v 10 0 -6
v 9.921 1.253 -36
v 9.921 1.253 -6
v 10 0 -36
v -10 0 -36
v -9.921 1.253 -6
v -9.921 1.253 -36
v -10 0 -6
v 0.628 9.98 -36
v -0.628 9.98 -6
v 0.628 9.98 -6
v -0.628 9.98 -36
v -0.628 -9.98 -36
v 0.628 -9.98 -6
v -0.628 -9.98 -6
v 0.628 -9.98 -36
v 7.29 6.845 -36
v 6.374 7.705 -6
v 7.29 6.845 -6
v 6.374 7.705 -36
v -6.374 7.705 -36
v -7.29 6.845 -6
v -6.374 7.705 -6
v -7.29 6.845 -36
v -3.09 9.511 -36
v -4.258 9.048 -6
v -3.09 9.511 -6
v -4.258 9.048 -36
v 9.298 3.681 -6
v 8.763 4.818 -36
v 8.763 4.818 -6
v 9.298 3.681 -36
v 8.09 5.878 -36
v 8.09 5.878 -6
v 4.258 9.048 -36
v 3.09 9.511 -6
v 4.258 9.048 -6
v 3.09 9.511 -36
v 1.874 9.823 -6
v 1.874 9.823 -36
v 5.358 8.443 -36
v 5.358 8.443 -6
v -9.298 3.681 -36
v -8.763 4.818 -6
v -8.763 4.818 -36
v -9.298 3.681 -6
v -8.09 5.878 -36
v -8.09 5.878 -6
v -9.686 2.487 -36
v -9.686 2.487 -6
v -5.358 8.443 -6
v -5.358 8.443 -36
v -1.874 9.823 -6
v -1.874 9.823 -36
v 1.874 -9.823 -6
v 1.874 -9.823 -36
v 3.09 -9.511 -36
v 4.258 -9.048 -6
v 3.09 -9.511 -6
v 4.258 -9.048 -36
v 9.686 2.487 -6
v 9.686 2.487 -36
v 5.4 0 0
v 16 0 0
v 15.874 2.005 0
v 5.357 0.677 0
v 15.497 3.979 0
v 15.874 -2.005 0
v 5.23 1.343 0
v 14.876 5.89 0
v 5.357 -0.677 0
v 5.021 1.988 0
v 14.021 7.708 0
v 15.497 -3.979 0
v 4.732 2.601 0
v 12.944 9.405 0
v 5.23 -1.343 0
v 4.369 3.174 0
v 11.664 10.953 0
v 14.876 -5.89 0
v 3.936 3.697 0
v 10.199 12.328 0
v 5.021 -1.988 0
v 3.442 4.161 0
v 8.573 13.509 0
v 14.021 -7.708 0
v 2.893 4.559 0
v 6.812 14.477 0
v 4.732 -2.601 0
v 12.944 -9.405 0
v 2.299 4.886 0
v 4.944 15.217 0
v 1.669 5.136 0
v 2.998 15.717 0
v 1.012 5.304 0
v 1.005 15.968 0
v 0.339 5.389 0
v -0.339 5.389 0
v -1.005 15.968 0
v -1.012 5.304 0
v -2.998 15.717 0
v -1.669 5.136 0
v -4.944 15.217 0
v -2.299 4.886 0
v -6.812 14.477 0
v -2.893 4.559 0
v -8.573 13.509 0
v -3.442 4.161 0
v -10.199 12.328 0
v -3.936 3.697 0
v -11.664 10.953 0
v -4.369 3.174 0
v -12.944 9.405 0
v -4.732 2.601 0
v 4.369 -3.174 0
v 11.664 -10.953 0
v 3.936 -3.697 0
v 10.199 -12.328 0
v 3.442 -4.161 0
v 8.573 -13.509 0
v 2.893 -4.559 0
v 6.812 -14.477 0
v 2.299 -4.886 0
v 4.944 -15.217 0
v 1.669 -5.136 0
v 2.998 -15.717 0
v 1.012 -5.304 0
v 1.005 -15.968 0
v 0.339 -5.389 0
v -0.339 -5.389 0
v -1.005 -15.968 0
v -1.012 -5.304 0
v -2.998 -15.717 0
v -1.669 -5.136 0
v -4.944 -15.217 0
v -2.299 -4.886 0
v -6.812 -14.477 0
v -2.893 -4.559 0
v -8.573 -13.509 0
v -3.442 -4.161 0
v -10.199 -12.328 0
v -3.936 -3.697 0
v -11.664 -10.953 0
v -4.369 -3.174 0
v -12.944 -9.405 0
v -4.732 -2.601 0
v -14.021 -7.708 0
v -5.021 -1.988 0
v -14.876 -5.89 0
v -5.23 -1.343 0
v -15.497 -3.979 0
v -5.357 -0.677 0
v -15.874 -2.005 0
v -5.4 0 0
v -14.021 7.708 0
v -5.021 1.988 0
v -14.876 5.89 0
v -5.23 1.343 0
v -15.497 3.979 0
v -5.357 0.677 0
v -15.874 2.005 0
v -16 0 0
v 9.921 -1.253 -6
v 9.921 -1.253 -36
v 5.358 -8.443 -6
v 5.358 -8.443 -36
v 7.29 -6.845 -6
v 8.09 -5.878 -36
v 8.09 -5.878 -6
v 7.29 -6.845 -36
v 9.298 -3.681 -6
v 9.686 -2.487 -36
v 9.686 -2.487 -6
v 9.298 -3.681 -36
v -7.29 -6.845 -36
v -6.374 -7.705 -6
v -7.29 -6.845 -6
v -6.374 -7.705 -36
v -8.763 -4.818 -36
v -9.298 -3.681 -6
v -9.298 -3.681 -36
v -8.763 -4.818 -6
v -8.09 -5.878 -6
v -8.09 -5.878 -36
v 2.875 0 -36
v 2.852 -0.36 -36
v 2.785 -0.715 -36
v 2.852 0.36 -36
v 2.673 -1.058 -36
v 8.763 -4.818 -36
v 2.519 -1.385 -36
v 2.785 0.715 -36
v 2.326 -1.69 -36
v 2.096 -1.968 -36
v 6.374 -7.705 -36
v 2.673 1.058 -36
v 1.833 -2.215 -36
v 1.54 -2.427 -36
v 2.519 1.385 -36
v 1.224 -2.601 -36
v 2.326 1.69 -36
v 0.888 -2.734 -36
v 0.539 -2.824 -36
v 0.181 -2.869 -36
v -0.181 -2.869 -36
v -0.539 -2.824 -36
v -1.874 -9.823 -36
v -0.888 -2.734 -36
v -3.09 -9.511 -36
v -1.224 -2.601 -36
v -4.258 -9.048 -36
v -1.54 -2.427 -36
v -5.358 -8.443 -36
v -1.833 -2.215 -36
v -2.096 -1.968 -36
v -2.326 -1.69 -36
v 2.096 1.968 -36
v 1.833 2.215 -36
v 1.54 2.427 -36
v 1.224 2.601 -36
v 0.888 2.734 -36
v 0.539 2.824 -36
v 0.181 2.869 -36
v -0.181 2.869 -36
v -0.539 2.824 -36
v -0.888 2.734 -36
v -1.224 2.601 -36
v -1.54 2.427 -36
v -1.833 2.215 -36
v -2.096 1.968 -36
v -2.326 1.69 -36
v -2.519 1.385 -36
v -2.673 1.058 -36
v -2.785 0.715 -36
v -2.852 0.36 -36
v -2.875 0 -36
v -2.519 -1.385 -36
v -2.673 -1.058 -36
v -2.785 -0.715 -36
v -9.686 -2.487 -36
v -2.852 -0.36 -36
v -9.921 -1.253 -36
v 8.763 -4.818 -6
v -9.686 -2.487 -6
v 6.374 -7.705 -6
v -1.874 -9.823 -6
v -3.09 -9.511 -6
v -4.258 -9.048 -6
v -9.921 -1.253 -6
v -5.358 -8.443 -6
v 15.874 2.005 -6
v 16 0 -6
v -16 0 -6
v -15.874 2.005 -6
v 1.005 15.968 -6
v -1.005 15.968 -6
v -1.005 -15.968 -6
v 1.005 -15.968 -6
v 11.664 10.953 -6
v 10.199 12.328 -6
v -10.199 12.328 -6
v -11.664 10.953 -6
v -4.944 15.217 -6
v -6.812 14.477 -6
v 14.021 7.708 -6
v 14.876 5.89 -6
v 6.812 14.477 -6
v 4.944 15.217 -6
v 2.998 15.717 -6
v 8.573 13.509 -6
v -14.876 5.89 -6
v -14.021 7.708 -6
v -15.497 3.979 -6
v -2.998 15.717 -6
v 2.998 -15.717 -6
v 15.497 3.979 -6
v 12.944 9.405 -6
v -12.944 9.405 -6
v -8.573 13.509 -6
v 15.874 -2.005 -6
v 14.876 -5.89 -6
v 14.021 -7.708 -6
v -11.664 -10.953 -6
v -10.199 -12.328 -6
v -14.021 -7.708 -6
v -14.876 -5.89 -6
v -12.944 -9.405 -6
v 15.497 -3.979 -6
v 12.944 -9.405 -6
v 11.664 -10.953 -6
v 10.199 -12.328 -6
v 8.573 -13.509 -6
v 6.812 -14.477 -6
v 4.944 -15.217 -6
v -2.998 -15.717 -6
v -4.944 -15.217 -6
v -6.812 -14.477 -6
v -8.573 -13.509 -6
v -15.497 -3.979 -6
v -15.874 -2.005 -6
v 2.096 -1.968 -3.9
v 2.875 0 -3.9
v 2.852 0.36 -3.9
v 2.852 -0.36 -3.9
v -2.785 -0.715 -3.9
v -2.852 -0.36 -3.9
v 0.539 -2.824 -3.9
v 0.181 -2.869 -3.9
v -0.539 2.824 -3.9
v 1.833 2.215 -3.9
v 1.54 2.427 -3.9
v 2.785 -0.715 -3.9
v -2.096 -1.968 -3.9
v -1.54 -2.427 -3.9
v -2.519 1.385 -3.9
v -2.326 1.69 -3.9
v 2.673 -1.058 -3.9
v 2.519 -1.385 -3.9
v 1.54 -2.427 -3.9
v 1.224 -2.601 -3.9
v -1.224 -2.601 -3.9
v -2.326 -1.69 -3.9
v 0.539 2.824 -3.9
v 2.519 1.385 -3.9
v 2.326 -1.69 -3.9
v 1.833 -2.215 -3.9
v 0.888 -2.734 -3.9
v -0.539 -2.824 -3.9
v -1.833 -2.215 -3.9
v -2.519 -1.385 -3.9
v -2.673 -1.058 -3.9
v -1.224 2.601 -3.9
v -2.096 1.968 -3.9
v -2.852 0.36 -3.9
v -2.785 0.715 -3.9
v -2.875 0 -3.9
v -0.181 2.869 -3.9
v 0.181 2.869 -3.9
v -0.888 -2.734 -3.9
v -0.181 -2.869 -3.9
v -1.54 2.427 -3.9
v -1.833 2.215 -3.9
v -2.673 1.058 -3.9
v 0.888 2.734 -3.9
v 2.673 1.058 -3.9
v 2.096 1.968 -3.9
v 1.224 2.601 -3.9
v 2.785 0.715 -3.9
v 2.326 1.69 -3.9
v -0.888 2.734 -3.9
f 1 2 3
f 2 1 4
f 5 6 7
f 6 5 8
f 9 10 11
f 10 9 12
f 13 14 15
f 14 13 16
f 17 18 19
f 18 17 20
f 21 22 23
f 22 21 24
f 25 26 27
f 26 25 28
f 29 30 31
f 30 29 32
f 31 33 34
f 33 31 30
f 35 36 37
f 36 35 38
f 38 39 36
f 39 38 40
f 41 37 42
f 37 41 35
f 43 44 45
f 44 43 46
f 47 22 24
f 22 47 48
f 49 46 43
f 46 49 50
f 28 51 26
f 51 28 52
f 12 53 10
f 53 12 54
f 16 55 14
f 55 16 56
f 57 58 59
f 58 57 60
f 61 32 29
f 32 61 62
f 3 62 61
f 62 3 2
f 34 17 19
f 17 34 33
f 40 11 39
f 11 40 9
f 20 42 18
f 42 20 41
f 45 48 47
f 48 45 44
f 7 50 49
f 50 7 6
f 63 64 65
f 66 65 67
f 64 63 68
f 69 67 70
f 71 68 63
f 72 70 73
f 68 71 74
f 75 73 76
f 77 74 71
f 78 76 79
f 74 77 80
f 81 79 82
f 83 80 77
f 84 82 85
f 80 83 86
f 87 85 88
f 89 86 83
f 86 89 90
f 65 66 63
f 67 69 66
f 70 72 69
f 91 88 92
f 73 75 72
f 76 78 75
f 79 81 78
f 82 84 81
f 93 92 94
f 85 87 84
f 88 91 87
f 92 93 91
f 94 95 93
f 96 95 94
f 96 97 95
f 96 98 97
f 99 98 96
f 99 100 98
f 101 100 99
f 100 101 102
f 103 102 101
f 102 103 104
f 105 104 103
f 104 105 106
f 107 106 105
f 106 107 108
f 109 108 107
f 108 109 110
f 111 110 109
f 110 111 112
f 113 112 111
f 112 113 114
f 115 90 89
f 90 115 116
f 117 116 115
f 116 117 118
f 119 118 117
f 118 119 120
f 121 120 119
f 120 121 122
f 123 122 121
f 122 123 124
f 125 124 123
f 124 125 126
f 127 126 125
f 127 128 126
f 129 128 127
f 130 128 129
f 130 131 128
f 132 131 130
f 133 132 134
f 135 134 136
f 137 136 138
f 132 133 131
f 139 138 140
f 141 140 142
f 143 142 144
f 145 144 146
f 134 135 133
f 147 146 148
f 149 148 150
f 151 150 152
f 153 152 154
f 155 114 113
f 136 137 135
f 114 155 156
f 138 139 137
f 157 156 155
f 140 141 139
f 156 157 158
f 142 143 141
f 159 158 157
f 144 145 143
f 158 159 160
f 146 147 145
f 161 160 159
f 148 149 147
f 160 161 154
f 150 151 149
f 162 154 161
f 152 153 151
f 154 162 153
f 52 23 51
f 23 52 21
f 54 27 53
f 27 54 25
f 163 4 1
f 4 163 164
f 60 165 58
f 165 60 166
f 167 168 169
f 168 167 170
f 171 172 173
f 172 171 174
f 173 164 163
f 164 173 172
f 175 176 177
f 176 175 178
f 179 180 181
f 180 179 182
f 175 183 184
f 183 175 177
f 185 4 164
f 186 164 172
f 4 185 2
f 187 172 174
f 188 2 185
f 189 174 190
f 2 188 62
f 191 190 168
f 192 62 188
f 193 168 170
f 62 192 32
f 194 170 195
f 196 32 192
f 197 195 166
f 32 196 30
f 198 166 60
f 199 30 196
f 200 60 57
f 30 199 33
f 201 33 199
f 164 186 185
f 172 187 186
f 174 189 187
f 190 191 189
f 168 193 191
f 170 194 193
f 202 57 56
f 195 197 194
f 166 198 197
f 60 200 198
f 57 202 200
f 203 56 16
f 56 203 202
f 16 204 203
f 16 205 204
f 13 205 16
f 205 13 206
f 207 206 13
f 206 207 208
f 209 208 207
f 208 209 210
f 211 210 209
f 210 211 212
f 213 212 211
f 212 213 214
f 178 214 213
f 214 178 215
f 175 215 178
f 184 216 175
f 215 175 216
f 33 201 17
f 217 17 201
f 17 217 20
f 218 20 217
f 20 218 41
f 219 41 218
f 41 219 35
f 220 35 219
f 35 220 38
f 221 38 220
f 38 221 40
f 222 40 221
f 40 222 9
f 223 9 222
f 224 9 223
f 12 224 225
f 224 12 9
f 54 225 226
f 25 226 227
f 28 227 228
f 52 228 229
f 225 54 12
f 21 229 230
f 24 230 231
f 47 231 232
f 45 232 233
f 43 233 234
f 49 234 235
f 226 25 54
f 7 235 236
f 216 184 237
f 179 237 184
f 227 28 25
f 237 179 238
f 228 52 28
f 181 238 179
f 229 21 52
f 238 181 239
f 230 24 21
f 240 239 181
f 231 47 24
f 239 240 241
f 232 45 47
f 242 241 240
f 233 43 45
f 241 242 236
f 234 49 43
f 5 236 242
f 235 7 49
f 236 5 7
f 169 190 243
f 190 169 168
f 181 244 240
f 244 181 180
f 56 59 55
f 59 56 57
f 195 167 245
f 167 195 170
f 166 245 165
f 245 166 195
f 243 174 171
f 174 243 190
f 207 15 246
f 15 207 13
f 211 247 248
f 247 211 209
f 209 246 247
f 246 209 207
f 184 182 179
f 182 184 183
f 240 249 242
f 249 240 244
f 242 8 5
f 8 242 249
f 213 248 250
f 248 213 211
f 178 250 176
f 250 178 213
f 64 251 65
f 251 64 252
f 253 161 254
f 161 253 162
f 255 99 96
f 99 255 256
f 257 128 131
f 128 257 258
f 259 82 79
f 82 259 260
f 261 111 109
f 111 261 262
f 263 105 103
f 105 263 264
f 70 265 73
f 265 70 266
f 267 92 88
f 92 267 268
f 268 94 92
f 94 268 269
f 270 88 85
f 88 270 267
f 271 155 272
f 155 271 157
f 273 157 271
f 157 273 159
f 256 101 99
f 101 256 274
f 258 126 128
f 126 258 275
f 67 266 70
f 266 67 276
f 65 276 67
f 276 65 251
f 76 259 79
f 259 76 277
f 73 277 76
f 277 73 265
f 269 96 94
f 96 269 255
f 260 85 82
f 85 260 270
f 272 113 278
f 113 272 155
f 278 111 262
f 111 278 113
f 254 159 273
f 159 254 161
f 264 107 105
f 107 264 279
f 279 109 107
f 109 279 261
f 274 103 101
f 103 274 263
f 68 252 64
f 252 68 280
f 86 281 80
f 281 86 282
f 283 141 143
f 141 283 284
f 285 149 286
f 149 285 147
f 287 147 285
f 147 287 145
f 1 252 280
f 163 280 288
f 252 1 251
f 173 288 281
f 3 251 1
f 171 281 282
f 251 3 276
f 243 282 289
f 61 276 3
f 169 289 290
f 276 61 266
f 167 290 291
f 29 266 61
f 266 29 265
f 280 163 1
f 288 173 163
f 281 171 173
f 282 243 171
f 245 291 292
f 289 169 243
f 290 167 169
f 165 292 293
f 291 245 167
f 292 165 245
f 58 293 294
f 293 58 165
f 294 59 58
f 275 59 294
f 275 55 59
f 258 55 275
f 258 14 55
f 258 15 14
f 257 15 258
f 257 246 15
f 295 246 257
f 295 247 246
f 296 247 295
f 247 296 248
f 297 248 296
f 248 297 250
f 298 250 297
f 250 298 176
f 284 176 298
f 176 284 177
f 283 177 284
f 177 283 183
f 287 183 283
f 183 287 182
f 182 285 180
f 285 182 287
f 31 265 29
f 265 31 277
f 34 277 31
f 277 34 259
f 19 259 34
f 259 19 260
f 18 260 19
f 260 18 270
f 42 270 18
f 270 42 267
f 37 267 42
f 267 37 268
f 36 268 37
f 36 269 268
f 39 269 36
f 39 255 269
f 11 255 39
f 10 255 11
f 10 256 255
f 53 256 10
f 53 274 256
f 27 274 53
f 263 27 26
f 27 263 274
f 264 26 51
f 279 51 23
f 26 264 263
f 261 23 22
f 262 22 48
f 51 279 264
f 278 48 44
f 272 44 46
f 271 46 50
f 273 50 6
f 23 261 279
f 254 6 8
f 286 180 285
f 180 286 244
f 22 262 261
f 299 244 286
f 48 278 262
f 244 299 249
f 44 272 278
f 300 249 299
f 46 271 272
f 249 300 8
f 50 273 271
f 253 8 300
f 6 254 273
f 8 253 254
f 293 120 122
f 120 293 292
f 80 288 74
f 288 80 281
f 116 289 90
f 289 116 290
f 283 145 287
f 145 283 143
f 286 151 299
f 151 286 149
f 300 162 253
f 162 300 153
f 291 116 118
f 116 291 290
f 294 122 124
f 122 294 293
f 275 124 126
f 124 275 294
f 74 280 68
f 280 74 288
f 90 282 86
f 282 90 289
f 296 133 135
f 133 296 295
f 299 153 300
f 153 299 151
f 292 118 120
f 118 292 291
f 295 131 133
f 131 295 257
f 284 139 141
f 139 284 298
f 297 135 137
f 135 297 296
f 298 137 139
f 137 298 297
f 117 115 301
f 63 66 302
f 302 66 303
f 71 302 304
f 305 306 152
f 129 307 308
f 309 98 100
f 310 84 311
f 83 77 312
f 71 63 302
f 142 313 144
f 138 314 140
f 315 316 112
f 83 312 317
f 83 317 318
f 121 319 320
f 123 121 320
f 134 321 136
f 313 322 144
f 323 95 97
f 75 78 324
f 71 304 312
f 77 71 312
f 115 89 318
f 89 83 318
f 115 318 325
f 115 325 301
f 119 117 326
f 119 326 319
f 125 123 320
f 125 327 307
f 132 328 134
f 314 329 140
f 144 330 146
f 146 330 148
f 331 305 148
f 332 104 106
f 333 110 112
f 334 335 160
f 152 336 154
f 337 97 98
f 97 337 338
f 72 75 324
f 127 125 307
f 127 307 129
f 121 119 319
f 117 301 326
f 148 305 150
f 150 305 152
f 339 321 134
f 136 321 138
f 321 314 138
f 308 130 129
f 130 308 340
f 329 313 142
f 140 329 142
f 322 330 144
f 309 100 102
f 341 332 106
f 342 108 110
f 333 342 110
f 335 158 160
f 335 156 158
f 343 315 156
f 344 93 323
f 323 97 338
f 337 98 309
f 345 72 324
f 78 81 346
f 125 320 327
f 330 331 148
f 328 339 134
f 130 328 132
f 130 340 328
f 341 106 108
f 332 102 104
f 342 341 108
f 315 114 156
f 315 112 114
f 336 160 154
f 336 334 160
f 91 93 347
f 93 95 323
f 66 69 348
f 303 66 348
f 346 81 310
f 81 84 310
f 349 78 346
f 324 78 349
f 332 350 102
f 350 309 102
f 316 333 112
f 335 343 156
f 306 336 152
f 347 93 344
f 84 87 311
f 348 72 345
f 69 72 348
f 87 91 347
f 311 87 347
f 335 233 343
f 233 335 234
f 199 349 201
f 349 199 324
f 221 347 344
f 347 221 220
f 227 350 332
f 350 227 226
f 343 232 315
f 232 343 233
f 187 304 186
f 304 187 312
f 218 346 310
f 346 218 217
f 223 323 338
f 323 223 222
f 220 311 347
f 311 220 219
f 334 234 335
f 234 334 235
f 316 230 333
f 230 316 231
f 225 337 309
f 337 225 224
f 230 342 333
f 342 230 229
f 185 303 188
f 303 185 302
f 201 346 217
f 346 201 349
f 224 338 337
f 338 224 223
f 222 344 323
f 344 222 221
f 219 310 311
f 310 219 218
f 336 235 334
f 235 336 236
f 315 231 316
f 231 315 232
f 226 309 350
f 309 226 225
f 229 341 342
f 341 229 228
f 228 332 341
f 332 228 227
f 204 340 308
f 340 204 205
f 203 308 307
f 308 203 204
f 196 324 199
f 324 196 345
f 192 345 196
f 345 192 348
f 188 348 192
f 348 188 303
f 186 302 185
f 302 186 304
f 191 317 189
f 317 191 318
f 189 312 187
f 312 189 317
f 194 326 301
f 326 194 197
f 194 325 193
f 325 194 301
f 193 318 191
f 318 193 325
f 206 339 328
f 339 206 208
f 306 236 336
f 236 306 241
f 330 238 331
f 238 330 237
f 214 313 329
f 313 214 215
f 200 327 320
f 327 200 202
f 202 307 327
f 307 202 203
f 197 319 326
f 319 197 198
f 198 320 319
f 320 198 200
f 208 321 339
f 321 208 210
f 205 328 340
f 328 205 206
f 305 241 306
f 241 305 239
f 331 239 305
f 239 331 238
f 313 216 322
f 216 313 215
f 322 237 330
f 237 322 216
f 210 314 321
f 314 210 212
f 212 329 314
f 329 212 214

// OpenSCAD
$fn = 50;


difference() {
	union() {
		translate(v = [0, 0, -36.0000000000]) {
			cylinder(h = 36, r = 10.0000000000);
		}
		translate(v = [0, 0, -6.0000000000]) {
			cylinder(h = 6, r = 16.0000000000);
		}
	}
	union() {
		translate(v = [0, 0, 0]) {
			rotate(a = [0, 0, 0]) {
				difference() {
					union() {
						#translate(v = [0, 0, -36.0000000000]) {
							cylinder(h = 36, r = 2.6000000000);
						}
						#translate(v = [0, 0, -3.9000000000]) {
							cylinder(h = 3.9000000000, r = 10.0000000000, r1 = 2.8750000000, r2 = 5.4000000000);
						}
						#translate(v = [0, 0, -36.0000000000]) {
							cylinder(h = 36, r = 2.8750000000);
						}
						#translate(v = [0, 0, -36.0000000000]) {
							cylinder(h = 36, r = 2.6000000000);
						}
					}
					union();
				}
			}
		}
	}
}
